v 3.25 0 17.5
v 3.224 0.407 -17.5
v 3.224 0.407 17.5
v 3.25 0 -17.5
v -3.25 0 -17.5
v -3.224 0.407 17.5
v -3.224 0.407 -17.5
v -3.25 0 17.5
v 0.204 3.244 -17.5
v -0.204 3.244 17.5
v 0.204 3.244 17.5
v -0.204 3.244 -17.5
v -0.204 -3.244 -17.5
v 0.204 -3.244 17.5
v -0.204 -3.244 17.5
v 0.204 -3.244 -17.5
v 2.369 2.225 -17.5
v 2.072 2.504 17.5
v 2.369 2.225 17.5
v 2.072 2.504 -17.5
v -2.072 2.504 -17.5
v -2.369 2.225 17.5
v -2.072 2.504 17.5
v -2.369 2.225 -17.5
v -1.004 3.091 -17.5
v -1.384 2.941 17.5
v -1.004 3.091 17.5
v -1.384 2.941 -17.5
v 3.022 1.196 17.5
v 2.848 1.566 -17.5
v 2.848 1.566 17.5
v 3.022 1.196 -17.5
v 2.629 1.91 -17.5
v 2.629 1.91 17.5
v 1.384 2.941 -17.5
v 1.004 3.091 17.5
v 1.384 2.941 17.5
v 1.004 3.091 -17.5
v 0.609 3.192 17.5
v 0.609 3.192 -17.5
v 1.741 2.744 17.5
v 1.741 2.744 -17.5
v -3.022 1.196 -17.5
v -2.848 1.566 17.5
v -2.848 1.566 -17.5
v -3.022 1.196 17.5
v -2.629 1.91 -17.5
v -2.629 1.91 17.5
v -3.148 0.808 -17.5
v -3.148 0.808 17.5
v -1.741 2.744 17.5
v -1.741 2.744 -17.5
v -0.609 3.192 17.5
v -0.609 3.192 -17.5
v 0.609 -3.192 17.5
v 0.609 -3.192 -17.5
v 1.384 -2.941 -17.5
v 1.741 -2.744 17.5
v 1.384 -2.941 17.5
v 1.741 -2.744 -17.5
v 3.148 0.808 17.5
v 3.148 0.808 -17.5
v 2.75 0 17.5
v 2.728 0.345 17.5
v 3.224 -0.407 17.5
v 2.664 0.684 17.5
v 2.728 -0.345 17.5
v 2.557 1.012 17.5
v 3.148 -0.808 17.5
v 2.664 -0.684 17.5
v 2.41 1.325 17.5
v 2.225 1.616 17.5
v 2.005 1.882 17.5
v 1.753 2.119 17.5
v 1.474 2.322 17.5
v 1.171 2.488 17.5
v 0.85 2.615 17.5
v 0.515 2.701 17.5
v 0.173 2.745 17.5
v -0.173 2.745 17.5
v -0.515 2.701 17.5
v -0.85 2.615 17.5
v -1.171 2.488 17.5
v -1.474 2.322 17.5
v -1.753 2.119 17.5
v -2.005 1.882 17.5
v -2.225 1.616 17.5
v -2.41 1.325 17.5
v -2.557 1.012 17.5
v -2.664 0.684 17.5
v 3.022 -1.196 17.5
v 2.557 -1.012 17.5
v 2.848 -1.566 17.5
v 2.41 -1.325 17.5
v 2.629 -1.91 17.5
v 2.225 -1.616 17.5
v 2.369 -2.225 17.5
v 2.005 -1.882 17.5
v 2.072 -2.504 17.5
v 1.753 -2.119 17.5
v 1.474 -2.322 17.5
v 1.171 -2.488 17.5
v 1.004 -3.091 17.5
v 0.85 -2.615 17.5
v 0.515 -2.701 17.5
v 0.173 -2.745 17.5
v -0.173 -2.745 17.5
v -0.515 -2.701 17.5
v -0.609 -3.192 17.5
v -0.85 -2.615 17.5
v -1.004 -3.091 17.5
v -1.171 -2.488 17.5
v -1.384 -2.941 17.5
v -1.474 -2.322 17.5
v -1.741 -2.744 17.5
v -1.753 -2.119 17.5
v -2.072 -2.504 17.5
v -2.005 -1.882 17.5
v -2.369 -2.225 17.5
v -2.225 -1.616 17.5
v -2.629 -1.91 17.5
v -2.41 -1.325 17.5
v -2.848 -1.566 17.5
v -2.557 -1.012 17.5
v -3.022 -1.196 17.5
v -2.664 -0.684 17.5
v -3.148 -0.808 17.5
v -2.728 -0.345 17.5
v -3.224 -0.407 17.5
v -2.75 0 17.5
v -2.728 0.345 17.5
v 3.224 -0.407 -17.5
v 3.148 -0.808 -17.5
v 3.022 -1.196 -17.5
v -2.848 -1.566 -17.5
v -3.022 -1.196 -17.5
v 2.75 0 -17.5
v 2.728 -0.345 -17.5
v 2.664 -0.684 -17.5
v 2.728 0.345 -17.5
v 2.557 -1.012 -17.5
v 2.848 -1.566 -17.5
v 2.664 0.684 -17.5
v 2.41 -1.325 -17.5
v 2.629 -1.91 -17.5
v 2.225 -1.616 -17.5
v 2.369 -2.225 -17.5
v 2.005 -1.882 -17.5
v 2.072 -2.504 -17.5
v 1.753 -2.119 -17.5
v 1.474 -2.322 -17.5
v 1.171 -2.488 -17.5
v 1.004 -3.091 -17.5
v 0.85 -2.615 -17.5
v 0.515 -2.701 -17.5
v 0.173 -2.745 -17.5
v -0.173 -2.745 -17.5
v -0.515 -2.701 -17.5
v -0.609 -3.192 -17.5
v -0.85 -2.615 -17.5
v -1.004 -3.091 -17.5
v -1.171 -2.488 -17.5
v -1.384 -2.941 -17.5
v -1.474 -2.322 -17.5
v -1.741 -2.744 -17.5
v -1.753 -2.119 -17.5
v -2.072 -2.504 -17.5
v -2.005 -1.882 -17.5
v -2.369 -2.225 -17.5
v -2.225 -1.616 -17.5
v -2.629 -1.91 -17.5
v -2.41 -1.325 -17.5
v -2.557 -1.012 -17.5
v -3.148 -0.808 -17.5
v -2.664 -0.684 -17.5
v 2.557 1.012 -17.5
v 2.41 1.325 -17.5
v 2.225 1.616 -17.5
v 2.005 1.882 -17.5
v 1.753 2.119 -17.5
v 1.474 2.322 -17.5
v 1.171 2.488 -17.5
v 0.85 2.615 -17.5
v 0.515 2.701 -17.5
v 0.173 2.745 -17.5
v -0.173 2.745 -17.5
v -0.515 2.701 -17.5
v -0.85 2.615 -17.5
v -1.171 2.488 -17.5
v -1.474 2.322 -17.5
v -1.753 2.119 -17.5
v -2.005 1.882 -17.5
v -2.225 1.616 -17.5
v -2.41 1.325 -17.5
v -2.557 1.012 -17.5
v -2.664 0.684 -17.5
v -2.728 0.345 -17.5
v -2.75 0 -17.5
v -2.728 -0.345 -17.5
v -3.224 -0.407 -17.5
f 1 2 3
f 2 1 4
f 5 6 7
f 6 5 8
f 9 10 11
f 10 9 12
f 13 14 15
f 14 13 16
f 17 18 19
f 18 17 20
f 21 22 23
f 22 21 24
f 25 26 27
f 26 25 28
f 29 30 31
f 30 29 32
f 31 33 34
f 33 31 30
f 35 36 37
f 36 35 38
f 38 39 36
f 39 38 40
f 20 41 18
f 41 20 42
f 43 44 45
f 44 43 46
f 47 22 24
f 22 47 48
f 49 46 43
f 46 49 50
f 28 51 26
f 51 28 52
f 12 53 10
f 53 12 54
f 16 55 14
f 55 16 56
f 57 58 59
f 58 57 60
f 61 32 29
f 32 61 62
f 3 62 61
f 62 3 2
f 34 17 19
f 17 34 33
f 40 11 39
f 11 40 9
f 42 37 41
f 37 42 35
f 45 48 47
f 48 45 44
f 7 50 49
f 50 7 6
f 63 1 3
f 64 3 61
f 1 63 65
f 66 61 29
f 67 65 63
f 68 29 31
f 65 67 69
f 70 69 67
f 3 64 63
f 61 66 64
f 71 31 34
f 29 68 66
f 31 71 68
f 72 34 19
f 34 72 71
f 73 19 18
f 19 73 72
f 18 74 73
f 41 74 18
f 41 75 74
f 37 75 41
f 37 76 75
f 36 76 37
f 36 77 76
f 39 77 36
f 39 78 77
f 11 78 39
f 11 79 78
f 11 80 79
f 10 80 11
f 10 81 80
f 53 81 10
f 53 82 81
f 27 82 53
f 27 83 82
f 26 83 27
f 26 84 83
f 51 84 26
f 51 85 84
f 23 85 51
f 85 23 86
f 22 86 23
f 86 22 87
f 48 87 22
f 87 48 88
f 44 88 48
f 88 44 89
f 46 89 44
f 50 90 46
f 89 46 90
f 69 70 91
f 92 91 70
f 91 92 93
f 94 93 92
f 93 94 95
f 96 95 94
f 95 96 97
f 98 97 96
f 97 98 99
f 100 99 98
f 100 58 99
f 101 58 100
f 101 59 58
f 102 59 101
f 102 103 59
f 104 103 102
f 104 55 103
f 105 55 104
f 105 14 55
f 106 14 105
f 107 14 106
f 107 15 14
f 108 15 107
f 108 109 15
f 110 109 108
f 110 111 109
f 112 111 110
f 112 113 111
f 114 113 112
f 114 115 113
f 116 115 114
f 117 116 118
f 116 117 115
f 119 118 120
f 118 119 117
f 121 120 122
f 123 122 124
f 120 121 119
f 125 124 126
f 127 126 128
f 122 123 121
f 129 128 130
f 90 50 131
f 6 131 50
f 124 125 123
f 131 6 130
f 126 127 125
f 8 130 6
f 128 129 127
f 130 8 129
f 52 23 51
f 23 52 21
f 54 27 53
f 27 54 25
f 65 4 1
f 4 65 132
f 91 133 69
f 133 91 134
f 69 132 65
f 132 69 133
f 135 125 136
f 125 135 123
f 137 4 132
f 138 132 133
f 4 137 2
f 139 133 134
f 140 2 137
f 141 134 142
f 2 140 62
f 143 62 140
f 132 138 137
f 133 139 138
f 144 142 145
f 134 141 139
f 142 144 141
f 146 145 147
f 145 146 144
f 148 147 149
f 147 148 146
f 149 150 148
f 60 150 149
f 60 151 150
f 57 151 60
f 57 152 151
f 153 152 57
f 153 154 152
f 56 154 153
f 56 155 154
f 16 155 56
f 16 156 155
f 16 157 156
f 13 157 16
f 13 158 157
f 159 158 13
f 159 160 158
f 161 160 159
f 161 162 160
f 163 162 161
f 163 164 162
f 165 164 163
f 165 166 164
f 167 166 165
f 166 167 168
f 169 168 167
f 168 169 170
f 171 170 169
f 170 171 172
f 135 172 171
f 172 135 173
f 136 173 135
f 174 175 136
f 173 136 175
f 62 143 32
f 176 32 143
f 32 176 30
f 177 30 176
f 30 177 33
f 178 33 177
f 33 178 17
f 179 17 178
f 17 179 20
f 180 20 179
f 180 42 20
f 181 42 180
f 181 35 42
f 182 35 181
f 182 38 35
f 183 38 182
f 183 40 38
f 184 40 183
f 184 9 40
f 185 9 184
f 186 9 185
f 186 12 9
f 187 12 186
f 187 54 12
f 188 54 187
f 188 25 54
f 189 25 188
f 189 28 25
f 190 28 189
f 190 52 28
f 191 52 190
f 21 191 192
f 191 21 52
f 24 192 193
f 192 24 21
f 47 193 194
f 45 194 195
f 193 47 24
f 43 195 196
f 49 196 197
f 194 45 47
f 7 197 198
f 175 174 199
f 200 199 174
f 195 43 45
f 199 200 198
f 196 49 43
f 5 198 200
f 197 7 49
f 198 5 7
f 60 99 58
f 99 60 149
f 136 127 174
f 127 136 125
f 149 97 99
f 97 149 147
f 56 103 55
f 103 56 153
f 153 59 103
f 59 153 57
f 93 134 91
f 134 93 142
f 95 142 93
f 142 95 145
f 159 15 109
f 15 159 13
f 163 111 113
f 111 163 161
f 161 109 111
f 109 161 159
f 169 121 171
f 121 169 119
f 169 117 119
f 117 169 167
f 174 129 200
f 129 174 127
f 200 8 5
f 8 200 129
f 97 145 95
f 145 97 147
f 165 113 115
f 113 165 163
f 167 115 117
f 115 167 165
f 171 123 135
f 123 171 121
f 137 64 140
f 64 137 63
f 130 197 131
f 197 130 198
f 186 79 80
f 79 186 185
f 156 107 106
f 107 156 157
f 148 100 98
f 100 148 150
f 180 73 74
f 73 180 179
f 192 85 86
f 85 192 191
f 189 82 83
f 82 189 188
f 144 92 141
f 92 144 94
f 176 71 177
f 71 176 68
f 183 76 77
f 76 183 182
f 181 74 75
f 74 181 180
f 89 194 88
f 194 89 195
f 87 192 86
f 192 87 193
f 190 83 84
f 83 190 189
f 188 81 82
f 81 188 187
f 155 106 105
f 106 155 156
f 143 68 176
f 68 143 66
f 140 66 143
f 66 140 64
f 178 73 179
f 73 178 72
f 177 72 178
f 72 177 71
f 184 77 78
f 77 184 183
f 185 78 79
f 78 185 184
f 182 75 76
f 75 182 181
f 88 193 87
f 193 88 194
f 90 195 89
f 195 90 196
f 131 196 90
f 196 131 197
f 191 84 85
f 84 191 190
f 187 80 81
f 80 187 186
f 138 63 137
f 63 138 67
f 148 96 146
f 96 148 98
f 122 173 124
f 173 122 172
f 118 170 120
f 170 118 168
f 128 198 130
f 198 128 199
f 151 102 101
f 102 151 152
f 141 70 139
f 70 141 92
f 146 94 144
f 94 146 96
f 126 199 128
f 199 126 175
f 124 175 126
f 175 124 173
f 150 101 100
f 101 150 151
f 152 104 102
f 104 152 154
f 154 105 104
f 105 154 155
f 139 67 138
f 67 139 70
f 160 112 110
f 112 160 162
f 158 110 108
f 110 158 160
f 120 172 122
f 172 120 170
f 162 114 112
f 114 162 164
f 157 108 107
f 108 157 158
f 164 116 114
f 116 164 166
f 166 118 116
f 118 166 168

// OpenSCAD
$fn = 50;


difference() {
	union() {
		translate(v = [0, 0, -17.5000000000]) {
			cylinder(h = 35, r = 3.2500000000);
		}
	}
	union() {
		translate(v = [0, 0, -100.0000000000]) {
			cylinder(h = 200, r = 2.7500000000);
		}
	}
}
